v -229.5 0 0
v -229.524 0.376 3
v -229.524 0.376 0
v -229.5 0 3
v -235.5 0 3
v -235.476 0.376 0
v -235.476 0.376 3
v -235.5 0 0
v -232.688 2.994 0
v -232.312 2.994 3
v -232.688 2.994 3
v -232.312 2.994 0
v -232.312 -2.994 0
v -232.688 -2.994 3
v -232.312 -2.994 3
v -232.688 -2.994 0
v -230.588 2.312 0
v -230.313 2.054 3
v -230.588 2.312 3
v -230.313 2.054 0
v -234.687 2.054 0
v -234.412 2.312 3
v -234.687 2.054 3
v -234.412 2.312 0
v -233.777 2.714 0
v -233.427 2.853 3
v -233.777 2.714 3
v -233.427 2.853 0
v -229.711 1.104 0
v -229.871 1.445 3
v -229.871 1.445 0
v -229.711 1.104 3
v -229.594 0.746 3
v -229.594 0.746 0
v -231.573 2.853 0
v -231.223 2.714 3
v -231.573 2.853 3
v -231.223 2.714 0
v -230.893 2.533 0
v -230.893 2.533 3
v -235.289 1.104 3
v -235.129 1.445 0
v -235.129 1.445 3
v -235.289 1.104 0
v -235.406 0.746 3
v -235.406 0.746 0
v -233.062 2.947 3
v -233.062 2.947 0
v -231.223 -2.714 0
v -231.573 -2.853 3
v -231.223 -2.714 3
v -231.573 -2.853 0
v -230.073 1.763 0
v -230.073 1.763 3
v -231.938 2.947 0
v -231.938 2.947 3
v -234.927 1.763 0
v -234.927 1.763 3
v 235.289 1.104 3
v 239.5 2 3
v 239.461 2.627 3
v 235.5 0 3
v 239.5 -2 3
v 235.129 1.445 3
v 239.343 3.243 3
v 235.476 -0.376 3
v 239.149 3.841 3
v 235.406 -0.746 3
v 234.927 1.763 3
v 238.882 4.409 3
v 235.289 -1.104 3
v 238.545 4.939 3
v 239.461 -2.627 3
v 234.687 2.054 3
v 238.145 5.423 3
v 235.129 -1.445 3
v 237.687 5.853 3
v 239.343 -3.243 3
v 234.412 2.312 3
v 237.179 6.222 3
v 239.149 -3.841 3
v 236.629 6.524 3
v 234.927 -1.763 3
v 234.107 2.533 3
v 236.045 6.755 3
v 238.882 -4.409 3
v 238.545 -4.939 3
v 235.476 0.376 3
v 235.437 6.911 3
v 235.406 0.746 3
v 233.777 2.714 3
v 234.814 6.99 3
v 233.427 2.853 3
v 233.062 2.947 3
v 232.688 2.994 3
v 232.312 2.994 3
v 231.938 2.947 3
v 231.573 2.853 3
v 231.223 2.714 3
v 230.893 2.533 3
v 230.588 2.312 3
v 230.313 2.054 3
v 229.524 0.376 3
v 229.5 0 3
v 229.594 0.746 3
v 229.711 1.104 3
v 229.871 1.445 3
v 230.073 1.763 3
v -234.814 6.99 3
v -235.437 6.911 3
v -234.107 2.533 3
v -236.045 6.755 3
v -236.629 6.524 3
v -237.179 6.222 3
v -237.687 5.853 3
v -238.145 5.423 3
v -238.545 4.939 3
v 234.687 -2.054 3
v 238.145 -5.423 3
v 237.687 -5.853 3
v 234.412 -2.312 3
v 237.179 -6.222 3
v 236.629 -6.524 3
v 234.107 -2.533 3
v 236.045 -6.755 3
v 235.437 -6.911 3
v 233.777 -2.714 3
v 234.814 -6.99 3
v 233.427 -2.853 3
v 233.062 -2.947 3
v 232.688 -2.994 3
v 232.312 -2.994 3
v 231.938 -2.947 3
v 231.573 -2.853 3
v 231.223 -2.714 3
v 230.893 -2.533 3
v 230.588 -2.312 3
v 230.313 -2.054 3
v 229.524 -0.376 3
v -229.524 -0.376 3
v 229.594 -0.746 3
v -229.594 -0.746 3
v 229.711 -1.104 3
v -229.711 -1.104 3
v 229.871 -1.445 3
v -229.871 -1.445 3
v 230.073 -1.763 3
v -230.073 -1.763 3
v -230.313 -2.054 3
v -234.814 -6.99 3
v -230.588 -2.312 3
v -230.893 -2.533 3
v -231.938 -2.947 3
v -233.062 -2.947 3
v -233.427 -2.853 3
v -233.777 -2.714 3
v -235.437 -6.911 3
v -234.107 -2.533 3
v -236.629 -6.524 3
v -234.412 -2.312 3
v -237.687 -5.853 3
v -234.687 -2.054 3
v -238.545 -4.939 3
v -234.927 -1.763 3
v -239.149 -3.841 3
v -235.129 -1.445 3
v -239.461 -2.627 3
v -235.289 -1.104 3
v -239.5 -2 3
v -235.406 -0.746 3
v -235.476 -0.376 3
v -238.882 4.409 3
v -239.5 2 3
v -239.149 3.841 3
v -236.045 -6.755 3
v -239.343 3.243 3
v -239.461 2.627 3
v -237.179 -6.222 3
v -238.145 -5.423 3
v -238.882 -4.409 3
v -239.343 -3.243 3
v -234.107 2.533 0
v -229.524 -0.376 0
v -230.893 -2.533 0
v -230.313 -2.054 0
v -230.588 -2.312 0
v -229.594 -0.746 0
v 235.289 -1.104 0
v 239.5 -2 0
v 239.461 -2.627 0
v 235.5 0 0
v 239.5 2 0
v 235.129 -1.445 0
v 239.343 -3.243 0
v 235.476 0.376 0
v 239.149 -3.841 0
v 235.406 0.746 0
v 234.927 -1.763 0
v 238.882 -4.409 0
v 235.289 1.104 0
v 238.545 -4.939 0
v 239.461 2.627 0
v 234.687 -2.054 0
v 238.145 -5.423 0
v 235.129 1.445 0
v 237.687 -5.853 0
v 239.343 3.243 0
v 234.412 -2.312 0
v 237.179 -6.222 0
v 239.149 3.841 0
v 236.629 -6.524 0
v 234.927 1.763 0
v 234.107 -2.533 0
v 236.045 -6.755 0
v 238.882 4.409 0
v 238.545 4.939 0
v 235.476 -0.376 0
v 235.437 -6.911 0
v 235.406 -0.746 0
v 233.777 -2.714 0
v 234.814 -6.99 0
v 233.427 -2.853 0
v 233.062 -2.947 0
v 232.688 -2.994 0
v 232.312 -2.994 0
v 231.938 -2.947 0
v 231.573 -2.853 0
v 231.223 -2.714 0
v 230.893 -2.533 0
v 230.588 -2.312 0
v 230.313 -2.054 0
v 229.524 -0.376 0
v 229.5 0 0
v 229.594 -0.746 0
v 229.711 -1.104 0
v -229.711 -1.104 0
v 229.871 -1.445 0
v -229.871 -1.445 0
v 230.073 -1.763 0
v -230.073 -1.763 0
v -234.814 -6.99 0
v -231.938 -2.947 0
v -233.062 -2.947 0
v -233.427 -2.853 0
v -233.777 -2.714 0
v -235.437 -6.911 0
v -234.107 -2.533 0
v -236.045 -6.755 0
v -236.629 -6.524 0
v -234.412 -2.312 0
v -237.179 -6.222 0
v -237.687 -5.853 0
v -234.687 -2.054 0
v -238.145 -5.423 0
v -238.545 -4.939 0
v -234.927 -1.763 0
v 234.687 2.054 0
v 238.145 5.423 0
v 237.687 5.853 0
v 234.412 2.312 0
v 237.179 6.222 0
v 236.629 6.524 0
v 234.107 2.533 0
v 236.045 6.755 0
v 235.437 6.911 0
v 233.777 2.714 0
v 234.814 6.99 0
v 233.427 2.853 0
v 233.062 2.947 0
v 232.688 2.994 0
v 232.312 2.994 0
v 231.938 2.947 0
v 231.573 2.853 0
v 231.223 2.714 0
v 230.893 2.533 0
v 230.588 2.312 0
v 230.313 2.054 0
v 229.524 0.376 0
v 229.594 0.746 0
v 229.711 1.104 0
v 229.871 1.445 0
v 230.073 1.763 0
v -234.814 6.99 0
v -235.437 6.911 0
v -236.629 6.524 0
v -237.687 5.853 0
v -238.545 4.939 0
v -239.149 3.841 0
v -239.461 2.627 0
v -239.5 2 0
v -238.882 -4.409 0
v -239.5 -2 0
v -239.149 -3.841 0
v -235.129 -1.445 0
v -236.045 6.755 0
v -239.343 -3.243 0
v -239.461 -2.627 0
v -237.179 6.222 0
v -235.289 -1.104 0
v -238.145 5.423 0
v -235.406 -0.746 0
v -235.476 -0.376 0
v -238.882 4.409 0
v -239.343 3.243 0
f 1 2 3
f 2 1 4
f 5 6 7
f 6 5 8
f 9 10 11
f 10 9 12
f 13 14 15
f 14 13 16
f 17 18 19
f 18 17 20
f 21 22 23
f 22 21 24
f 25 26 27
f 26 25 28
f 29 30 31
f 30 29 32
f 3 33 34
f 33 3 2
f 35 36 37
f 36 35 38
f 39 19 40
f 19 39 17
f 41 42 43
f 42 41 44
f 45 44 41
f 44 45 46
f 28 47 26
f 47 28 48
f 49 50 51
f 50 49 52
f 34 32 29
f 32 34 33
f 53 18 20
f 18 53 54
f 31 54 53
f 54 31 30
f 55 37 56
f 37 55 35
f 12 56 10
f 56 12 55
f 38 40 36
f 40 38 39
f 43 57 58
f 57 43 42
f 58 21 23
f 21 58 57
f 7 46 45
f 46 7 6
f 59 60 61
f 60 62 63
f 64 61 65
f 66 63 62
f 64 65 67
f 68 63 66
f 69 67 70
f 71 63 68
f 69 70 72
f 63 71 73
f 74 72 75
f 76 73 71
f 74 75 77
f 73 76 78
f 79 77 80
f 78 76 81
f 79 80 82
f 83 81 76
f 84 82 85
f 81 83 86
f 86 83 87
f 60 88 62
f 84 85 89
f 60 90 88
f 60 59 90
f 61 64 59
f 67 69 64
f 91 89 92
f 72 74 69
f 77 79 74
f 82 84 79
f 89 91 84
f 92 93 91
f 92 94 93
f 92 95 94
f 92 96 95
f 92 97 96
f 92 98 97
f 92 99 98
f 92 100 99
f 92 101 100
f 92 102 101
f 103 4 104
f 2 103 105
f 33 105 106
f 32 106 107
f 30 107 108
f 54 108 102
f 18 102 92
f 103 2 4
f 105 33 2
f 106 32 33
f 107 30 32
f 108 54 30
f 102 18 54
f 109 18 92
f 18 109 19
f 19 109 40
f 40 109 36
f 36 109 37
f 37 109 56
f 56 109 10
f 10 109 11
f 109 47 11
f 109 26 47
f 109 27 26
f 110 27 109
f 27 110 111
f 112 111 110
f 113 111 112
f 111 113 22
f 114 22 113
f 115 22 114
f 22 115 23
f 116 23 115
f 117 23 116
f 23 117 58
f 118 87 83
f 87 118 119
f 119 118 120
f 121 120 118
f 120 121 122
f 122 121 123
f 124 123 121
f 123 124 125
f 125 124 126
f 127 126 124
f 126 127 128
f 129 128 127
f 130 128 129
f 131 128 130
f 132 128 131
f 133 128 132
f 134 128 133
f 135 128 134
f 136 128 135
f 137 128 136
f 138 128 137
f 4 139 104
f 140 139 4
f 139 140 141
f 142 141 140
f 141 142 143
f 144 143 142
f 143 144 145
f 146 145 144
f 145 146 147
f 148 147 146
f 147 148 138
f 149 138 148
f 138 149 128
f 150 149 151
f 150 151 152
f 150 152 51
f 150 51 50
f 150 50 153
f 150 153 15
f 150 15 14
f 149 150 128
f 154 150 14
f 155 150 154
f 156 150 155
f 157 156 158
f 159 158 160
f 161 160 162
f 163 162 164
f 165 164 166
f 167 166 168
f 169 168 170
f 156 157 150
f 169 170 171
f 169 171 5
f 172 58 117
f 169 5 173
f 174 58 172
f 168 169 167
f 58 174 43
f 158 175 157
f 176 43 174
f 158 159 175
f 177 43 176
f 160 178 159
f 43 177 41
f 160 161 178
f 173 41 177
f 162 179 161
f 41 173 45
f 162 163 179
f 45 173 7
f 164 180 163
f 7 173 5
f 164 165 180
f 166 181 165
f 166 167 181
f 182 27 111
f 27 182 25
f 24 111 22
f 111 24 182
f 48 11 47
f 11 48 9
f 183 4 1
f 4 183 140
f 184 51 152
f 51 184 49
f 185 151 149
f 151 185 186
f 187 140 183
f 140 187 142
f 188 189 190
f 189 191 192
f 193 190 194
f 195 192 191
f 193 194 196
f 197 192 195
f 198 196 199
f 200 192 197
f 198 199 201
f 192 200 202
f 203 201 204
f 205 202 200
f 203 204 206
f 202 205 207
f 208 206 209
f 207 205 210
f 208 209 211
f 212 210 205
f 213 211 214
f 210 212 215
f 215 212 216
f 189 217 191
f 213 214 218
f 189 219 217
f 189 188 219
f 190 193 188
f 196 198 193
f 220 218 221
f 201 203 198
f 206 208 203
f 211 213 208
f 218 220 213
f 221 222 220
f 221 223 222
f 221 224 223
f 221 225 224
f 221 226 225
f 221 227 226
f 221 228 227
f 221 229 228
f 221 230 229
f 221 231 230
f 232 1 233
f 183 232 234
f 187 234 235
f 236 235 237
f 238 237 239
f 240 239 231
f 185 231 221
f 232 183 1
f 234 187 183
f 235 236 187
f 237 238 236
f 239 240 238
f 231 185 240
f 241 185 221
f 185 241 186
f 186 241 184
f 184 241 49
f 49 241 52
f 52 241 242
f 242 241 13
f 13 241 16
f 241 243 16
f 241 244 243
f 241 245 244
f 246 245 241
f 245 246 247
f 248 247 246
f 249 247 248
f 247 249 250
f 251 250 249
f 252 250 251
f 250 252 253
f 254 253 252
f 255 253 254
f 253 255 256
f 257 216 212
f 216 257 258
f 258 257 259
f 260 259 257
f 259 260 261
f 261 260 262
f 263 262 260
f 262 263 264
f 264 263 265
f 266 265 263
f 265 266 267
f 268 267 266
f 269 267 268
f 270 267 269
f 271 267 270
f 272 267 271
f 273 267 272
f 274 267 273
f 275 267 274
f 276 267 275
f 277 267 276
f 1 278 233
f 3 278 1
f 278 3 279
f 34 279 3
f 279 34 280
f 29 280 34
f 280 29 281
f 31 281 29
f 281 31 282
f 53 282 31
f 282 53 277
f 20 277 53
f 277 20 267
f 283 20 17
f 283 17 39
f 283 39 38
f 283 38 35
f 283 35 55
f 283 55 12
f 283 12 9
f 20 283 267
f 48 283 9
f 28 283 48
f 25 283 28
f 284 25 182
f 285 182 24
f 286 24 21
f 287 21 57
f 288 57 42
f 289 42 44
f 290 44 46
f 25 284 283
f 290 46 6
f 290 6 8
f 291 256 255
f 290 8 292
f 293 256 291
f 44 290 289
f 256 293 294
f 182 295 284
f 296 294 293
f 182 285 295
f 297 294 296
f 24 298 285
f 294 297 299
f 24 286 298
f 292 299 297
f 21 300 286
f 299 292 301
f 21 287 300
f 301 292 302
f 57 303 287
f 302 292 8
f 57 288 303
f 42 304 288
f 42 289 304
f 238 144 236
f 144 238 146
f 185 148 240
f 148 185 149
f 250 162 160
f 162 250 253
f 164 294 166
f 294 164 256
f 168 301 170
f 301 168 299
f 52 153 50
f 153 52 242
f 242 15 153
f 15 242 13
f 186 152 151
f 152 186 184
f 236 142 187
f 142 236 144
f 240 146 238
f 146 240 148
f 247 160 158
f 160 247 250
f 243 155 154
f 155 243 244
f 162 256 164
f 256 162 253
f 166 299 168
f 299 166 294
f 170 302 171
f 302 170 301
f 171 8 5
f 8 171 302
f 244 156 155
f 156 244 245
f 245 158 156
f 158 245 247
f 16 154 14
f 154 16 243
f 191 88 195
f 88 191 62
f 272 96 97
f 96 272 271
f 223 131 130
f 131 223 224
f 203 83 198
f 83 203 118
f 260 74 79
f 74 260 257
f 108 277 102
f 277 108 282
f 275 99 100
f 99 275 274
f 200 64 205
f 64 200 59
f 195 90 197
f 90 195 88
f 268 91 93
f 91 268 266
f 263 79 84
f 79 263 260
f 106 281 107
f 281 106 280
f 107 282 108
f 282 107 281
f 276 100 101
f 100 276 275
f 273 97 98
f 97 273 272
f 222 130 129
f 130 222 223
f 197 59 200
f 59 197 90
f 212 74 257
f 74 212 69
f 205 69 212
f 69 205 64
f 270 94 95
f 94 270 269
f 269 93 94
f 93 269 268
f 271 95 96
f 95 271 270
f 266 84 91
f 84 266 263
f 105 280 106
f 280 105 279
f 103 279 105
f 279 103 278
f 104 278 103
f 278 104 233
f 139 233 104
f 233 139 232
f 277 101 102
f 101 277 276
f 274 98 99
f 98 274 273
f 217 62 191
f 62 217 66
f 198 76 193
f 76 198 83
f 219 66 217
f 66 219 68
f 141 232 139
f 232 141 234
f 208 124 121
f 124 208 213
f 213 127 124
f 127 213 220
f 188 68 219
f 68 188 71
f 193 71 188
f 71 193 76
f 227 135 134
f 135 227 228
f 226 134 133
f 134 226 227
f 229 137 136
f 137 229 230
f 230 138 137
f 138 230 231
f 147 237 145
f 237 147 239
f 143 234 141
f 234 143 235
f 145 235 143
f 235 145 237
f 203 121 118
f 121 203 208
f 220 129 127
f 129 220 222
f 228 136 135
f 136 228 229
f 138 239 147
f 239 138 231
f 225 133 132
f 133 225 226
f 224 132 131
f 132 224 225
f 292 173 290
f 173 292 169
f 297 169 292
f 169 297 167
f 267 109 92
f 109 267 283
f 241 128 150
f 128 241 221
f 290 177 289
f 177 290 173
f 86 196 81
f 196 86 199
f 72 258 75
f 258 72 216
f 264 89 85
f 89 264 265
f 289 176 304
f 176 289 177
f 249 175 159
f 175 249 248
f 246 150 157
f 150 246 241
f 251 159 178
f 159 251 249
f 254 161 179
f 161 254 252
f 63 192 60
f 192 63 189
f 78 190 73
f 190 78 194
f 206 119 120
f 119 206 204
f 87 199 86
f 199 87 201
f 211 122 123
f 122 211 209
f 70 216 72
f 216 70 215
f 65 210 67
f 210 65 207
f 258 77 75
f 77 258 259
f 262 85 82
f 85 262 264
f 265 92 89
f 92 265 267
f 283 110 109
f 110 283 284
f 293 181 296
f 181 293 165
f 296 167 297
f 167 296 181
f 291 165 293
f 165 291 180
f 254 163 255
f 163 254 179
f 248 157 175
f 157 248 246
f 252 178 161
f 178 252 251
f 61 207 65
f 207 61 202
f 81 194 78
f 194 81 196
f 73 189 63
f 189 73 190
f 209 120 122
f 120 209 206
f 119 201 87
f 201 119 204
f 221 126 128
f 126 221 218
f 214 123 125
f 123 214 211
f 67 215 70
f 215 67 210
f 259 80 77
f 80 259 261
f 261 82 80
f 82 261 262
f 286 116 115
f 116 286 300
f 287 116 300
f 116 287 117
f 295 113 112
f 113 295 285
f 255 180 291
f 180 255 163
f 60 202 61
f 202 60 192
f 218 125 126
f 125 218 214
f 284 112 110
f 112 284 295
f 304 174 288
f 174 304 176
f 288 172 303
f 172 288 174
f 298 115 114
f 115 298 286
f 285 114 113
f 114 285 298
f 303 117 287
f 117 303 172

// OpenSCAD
$fn = 50;


difference() {
	union() {
		hull() {
			translate(v = [-234.5000000000, 2.0000000000, 0]) {
				cylinder(h = 3, r = 5);
			}
			translate(v = [234.5000000000, 2.0000000000, 0]) {
				cylinder(h = 3, r = 5);
			}
			translate(v = [-234.5000000000, -2.0000000000, 0]) {
				cylinder(h = 3, r = 5);
			}
			translate(v = [234.5000000000, -2.0000000000, 0]) {
				cylinder(h = 3, r = 5);
			}
		}
	}
	union() {
		translate(v = [-232.5000000000, 0.0000000000, 0]) {
			cylinder(h = 3, r = 3.0000000000);
		}
		translate(v = [232.5000000000, 0.0000000000, 0]) {
			cylinder(h = 3, r = 3.0000000000);
		}
		translate(v = [-232.5000000000, 0.0000000000, 0]) {
			cylinder(h = 3, r = 1.5000000000);
		}
		translate(v = [232.5000000000, 0.0000000000, 0]) {
			cylinder(h = 3, r = 1.5000000000);
		}
		translate(v = [-232.5000000000, 0.0000000000, 0]) {
			cylinder(h = 3, r = 1.5000000000);
		}
		translate(v = [232.5000000000, 0.0000000000, 0]) {
			cylinder(h = 3, r = 1.5000000000);
		}
		translate(v = [-232.5000000000, 0.0000000000, 0]) {
			cylinder(h = 3, r = 1.5000000000);
		}
		translate(v = [232.5000000000, 0.0000000000, 0]) {
			cylinder(h = 3, r = 1.5000000000);
		}
	}
}
